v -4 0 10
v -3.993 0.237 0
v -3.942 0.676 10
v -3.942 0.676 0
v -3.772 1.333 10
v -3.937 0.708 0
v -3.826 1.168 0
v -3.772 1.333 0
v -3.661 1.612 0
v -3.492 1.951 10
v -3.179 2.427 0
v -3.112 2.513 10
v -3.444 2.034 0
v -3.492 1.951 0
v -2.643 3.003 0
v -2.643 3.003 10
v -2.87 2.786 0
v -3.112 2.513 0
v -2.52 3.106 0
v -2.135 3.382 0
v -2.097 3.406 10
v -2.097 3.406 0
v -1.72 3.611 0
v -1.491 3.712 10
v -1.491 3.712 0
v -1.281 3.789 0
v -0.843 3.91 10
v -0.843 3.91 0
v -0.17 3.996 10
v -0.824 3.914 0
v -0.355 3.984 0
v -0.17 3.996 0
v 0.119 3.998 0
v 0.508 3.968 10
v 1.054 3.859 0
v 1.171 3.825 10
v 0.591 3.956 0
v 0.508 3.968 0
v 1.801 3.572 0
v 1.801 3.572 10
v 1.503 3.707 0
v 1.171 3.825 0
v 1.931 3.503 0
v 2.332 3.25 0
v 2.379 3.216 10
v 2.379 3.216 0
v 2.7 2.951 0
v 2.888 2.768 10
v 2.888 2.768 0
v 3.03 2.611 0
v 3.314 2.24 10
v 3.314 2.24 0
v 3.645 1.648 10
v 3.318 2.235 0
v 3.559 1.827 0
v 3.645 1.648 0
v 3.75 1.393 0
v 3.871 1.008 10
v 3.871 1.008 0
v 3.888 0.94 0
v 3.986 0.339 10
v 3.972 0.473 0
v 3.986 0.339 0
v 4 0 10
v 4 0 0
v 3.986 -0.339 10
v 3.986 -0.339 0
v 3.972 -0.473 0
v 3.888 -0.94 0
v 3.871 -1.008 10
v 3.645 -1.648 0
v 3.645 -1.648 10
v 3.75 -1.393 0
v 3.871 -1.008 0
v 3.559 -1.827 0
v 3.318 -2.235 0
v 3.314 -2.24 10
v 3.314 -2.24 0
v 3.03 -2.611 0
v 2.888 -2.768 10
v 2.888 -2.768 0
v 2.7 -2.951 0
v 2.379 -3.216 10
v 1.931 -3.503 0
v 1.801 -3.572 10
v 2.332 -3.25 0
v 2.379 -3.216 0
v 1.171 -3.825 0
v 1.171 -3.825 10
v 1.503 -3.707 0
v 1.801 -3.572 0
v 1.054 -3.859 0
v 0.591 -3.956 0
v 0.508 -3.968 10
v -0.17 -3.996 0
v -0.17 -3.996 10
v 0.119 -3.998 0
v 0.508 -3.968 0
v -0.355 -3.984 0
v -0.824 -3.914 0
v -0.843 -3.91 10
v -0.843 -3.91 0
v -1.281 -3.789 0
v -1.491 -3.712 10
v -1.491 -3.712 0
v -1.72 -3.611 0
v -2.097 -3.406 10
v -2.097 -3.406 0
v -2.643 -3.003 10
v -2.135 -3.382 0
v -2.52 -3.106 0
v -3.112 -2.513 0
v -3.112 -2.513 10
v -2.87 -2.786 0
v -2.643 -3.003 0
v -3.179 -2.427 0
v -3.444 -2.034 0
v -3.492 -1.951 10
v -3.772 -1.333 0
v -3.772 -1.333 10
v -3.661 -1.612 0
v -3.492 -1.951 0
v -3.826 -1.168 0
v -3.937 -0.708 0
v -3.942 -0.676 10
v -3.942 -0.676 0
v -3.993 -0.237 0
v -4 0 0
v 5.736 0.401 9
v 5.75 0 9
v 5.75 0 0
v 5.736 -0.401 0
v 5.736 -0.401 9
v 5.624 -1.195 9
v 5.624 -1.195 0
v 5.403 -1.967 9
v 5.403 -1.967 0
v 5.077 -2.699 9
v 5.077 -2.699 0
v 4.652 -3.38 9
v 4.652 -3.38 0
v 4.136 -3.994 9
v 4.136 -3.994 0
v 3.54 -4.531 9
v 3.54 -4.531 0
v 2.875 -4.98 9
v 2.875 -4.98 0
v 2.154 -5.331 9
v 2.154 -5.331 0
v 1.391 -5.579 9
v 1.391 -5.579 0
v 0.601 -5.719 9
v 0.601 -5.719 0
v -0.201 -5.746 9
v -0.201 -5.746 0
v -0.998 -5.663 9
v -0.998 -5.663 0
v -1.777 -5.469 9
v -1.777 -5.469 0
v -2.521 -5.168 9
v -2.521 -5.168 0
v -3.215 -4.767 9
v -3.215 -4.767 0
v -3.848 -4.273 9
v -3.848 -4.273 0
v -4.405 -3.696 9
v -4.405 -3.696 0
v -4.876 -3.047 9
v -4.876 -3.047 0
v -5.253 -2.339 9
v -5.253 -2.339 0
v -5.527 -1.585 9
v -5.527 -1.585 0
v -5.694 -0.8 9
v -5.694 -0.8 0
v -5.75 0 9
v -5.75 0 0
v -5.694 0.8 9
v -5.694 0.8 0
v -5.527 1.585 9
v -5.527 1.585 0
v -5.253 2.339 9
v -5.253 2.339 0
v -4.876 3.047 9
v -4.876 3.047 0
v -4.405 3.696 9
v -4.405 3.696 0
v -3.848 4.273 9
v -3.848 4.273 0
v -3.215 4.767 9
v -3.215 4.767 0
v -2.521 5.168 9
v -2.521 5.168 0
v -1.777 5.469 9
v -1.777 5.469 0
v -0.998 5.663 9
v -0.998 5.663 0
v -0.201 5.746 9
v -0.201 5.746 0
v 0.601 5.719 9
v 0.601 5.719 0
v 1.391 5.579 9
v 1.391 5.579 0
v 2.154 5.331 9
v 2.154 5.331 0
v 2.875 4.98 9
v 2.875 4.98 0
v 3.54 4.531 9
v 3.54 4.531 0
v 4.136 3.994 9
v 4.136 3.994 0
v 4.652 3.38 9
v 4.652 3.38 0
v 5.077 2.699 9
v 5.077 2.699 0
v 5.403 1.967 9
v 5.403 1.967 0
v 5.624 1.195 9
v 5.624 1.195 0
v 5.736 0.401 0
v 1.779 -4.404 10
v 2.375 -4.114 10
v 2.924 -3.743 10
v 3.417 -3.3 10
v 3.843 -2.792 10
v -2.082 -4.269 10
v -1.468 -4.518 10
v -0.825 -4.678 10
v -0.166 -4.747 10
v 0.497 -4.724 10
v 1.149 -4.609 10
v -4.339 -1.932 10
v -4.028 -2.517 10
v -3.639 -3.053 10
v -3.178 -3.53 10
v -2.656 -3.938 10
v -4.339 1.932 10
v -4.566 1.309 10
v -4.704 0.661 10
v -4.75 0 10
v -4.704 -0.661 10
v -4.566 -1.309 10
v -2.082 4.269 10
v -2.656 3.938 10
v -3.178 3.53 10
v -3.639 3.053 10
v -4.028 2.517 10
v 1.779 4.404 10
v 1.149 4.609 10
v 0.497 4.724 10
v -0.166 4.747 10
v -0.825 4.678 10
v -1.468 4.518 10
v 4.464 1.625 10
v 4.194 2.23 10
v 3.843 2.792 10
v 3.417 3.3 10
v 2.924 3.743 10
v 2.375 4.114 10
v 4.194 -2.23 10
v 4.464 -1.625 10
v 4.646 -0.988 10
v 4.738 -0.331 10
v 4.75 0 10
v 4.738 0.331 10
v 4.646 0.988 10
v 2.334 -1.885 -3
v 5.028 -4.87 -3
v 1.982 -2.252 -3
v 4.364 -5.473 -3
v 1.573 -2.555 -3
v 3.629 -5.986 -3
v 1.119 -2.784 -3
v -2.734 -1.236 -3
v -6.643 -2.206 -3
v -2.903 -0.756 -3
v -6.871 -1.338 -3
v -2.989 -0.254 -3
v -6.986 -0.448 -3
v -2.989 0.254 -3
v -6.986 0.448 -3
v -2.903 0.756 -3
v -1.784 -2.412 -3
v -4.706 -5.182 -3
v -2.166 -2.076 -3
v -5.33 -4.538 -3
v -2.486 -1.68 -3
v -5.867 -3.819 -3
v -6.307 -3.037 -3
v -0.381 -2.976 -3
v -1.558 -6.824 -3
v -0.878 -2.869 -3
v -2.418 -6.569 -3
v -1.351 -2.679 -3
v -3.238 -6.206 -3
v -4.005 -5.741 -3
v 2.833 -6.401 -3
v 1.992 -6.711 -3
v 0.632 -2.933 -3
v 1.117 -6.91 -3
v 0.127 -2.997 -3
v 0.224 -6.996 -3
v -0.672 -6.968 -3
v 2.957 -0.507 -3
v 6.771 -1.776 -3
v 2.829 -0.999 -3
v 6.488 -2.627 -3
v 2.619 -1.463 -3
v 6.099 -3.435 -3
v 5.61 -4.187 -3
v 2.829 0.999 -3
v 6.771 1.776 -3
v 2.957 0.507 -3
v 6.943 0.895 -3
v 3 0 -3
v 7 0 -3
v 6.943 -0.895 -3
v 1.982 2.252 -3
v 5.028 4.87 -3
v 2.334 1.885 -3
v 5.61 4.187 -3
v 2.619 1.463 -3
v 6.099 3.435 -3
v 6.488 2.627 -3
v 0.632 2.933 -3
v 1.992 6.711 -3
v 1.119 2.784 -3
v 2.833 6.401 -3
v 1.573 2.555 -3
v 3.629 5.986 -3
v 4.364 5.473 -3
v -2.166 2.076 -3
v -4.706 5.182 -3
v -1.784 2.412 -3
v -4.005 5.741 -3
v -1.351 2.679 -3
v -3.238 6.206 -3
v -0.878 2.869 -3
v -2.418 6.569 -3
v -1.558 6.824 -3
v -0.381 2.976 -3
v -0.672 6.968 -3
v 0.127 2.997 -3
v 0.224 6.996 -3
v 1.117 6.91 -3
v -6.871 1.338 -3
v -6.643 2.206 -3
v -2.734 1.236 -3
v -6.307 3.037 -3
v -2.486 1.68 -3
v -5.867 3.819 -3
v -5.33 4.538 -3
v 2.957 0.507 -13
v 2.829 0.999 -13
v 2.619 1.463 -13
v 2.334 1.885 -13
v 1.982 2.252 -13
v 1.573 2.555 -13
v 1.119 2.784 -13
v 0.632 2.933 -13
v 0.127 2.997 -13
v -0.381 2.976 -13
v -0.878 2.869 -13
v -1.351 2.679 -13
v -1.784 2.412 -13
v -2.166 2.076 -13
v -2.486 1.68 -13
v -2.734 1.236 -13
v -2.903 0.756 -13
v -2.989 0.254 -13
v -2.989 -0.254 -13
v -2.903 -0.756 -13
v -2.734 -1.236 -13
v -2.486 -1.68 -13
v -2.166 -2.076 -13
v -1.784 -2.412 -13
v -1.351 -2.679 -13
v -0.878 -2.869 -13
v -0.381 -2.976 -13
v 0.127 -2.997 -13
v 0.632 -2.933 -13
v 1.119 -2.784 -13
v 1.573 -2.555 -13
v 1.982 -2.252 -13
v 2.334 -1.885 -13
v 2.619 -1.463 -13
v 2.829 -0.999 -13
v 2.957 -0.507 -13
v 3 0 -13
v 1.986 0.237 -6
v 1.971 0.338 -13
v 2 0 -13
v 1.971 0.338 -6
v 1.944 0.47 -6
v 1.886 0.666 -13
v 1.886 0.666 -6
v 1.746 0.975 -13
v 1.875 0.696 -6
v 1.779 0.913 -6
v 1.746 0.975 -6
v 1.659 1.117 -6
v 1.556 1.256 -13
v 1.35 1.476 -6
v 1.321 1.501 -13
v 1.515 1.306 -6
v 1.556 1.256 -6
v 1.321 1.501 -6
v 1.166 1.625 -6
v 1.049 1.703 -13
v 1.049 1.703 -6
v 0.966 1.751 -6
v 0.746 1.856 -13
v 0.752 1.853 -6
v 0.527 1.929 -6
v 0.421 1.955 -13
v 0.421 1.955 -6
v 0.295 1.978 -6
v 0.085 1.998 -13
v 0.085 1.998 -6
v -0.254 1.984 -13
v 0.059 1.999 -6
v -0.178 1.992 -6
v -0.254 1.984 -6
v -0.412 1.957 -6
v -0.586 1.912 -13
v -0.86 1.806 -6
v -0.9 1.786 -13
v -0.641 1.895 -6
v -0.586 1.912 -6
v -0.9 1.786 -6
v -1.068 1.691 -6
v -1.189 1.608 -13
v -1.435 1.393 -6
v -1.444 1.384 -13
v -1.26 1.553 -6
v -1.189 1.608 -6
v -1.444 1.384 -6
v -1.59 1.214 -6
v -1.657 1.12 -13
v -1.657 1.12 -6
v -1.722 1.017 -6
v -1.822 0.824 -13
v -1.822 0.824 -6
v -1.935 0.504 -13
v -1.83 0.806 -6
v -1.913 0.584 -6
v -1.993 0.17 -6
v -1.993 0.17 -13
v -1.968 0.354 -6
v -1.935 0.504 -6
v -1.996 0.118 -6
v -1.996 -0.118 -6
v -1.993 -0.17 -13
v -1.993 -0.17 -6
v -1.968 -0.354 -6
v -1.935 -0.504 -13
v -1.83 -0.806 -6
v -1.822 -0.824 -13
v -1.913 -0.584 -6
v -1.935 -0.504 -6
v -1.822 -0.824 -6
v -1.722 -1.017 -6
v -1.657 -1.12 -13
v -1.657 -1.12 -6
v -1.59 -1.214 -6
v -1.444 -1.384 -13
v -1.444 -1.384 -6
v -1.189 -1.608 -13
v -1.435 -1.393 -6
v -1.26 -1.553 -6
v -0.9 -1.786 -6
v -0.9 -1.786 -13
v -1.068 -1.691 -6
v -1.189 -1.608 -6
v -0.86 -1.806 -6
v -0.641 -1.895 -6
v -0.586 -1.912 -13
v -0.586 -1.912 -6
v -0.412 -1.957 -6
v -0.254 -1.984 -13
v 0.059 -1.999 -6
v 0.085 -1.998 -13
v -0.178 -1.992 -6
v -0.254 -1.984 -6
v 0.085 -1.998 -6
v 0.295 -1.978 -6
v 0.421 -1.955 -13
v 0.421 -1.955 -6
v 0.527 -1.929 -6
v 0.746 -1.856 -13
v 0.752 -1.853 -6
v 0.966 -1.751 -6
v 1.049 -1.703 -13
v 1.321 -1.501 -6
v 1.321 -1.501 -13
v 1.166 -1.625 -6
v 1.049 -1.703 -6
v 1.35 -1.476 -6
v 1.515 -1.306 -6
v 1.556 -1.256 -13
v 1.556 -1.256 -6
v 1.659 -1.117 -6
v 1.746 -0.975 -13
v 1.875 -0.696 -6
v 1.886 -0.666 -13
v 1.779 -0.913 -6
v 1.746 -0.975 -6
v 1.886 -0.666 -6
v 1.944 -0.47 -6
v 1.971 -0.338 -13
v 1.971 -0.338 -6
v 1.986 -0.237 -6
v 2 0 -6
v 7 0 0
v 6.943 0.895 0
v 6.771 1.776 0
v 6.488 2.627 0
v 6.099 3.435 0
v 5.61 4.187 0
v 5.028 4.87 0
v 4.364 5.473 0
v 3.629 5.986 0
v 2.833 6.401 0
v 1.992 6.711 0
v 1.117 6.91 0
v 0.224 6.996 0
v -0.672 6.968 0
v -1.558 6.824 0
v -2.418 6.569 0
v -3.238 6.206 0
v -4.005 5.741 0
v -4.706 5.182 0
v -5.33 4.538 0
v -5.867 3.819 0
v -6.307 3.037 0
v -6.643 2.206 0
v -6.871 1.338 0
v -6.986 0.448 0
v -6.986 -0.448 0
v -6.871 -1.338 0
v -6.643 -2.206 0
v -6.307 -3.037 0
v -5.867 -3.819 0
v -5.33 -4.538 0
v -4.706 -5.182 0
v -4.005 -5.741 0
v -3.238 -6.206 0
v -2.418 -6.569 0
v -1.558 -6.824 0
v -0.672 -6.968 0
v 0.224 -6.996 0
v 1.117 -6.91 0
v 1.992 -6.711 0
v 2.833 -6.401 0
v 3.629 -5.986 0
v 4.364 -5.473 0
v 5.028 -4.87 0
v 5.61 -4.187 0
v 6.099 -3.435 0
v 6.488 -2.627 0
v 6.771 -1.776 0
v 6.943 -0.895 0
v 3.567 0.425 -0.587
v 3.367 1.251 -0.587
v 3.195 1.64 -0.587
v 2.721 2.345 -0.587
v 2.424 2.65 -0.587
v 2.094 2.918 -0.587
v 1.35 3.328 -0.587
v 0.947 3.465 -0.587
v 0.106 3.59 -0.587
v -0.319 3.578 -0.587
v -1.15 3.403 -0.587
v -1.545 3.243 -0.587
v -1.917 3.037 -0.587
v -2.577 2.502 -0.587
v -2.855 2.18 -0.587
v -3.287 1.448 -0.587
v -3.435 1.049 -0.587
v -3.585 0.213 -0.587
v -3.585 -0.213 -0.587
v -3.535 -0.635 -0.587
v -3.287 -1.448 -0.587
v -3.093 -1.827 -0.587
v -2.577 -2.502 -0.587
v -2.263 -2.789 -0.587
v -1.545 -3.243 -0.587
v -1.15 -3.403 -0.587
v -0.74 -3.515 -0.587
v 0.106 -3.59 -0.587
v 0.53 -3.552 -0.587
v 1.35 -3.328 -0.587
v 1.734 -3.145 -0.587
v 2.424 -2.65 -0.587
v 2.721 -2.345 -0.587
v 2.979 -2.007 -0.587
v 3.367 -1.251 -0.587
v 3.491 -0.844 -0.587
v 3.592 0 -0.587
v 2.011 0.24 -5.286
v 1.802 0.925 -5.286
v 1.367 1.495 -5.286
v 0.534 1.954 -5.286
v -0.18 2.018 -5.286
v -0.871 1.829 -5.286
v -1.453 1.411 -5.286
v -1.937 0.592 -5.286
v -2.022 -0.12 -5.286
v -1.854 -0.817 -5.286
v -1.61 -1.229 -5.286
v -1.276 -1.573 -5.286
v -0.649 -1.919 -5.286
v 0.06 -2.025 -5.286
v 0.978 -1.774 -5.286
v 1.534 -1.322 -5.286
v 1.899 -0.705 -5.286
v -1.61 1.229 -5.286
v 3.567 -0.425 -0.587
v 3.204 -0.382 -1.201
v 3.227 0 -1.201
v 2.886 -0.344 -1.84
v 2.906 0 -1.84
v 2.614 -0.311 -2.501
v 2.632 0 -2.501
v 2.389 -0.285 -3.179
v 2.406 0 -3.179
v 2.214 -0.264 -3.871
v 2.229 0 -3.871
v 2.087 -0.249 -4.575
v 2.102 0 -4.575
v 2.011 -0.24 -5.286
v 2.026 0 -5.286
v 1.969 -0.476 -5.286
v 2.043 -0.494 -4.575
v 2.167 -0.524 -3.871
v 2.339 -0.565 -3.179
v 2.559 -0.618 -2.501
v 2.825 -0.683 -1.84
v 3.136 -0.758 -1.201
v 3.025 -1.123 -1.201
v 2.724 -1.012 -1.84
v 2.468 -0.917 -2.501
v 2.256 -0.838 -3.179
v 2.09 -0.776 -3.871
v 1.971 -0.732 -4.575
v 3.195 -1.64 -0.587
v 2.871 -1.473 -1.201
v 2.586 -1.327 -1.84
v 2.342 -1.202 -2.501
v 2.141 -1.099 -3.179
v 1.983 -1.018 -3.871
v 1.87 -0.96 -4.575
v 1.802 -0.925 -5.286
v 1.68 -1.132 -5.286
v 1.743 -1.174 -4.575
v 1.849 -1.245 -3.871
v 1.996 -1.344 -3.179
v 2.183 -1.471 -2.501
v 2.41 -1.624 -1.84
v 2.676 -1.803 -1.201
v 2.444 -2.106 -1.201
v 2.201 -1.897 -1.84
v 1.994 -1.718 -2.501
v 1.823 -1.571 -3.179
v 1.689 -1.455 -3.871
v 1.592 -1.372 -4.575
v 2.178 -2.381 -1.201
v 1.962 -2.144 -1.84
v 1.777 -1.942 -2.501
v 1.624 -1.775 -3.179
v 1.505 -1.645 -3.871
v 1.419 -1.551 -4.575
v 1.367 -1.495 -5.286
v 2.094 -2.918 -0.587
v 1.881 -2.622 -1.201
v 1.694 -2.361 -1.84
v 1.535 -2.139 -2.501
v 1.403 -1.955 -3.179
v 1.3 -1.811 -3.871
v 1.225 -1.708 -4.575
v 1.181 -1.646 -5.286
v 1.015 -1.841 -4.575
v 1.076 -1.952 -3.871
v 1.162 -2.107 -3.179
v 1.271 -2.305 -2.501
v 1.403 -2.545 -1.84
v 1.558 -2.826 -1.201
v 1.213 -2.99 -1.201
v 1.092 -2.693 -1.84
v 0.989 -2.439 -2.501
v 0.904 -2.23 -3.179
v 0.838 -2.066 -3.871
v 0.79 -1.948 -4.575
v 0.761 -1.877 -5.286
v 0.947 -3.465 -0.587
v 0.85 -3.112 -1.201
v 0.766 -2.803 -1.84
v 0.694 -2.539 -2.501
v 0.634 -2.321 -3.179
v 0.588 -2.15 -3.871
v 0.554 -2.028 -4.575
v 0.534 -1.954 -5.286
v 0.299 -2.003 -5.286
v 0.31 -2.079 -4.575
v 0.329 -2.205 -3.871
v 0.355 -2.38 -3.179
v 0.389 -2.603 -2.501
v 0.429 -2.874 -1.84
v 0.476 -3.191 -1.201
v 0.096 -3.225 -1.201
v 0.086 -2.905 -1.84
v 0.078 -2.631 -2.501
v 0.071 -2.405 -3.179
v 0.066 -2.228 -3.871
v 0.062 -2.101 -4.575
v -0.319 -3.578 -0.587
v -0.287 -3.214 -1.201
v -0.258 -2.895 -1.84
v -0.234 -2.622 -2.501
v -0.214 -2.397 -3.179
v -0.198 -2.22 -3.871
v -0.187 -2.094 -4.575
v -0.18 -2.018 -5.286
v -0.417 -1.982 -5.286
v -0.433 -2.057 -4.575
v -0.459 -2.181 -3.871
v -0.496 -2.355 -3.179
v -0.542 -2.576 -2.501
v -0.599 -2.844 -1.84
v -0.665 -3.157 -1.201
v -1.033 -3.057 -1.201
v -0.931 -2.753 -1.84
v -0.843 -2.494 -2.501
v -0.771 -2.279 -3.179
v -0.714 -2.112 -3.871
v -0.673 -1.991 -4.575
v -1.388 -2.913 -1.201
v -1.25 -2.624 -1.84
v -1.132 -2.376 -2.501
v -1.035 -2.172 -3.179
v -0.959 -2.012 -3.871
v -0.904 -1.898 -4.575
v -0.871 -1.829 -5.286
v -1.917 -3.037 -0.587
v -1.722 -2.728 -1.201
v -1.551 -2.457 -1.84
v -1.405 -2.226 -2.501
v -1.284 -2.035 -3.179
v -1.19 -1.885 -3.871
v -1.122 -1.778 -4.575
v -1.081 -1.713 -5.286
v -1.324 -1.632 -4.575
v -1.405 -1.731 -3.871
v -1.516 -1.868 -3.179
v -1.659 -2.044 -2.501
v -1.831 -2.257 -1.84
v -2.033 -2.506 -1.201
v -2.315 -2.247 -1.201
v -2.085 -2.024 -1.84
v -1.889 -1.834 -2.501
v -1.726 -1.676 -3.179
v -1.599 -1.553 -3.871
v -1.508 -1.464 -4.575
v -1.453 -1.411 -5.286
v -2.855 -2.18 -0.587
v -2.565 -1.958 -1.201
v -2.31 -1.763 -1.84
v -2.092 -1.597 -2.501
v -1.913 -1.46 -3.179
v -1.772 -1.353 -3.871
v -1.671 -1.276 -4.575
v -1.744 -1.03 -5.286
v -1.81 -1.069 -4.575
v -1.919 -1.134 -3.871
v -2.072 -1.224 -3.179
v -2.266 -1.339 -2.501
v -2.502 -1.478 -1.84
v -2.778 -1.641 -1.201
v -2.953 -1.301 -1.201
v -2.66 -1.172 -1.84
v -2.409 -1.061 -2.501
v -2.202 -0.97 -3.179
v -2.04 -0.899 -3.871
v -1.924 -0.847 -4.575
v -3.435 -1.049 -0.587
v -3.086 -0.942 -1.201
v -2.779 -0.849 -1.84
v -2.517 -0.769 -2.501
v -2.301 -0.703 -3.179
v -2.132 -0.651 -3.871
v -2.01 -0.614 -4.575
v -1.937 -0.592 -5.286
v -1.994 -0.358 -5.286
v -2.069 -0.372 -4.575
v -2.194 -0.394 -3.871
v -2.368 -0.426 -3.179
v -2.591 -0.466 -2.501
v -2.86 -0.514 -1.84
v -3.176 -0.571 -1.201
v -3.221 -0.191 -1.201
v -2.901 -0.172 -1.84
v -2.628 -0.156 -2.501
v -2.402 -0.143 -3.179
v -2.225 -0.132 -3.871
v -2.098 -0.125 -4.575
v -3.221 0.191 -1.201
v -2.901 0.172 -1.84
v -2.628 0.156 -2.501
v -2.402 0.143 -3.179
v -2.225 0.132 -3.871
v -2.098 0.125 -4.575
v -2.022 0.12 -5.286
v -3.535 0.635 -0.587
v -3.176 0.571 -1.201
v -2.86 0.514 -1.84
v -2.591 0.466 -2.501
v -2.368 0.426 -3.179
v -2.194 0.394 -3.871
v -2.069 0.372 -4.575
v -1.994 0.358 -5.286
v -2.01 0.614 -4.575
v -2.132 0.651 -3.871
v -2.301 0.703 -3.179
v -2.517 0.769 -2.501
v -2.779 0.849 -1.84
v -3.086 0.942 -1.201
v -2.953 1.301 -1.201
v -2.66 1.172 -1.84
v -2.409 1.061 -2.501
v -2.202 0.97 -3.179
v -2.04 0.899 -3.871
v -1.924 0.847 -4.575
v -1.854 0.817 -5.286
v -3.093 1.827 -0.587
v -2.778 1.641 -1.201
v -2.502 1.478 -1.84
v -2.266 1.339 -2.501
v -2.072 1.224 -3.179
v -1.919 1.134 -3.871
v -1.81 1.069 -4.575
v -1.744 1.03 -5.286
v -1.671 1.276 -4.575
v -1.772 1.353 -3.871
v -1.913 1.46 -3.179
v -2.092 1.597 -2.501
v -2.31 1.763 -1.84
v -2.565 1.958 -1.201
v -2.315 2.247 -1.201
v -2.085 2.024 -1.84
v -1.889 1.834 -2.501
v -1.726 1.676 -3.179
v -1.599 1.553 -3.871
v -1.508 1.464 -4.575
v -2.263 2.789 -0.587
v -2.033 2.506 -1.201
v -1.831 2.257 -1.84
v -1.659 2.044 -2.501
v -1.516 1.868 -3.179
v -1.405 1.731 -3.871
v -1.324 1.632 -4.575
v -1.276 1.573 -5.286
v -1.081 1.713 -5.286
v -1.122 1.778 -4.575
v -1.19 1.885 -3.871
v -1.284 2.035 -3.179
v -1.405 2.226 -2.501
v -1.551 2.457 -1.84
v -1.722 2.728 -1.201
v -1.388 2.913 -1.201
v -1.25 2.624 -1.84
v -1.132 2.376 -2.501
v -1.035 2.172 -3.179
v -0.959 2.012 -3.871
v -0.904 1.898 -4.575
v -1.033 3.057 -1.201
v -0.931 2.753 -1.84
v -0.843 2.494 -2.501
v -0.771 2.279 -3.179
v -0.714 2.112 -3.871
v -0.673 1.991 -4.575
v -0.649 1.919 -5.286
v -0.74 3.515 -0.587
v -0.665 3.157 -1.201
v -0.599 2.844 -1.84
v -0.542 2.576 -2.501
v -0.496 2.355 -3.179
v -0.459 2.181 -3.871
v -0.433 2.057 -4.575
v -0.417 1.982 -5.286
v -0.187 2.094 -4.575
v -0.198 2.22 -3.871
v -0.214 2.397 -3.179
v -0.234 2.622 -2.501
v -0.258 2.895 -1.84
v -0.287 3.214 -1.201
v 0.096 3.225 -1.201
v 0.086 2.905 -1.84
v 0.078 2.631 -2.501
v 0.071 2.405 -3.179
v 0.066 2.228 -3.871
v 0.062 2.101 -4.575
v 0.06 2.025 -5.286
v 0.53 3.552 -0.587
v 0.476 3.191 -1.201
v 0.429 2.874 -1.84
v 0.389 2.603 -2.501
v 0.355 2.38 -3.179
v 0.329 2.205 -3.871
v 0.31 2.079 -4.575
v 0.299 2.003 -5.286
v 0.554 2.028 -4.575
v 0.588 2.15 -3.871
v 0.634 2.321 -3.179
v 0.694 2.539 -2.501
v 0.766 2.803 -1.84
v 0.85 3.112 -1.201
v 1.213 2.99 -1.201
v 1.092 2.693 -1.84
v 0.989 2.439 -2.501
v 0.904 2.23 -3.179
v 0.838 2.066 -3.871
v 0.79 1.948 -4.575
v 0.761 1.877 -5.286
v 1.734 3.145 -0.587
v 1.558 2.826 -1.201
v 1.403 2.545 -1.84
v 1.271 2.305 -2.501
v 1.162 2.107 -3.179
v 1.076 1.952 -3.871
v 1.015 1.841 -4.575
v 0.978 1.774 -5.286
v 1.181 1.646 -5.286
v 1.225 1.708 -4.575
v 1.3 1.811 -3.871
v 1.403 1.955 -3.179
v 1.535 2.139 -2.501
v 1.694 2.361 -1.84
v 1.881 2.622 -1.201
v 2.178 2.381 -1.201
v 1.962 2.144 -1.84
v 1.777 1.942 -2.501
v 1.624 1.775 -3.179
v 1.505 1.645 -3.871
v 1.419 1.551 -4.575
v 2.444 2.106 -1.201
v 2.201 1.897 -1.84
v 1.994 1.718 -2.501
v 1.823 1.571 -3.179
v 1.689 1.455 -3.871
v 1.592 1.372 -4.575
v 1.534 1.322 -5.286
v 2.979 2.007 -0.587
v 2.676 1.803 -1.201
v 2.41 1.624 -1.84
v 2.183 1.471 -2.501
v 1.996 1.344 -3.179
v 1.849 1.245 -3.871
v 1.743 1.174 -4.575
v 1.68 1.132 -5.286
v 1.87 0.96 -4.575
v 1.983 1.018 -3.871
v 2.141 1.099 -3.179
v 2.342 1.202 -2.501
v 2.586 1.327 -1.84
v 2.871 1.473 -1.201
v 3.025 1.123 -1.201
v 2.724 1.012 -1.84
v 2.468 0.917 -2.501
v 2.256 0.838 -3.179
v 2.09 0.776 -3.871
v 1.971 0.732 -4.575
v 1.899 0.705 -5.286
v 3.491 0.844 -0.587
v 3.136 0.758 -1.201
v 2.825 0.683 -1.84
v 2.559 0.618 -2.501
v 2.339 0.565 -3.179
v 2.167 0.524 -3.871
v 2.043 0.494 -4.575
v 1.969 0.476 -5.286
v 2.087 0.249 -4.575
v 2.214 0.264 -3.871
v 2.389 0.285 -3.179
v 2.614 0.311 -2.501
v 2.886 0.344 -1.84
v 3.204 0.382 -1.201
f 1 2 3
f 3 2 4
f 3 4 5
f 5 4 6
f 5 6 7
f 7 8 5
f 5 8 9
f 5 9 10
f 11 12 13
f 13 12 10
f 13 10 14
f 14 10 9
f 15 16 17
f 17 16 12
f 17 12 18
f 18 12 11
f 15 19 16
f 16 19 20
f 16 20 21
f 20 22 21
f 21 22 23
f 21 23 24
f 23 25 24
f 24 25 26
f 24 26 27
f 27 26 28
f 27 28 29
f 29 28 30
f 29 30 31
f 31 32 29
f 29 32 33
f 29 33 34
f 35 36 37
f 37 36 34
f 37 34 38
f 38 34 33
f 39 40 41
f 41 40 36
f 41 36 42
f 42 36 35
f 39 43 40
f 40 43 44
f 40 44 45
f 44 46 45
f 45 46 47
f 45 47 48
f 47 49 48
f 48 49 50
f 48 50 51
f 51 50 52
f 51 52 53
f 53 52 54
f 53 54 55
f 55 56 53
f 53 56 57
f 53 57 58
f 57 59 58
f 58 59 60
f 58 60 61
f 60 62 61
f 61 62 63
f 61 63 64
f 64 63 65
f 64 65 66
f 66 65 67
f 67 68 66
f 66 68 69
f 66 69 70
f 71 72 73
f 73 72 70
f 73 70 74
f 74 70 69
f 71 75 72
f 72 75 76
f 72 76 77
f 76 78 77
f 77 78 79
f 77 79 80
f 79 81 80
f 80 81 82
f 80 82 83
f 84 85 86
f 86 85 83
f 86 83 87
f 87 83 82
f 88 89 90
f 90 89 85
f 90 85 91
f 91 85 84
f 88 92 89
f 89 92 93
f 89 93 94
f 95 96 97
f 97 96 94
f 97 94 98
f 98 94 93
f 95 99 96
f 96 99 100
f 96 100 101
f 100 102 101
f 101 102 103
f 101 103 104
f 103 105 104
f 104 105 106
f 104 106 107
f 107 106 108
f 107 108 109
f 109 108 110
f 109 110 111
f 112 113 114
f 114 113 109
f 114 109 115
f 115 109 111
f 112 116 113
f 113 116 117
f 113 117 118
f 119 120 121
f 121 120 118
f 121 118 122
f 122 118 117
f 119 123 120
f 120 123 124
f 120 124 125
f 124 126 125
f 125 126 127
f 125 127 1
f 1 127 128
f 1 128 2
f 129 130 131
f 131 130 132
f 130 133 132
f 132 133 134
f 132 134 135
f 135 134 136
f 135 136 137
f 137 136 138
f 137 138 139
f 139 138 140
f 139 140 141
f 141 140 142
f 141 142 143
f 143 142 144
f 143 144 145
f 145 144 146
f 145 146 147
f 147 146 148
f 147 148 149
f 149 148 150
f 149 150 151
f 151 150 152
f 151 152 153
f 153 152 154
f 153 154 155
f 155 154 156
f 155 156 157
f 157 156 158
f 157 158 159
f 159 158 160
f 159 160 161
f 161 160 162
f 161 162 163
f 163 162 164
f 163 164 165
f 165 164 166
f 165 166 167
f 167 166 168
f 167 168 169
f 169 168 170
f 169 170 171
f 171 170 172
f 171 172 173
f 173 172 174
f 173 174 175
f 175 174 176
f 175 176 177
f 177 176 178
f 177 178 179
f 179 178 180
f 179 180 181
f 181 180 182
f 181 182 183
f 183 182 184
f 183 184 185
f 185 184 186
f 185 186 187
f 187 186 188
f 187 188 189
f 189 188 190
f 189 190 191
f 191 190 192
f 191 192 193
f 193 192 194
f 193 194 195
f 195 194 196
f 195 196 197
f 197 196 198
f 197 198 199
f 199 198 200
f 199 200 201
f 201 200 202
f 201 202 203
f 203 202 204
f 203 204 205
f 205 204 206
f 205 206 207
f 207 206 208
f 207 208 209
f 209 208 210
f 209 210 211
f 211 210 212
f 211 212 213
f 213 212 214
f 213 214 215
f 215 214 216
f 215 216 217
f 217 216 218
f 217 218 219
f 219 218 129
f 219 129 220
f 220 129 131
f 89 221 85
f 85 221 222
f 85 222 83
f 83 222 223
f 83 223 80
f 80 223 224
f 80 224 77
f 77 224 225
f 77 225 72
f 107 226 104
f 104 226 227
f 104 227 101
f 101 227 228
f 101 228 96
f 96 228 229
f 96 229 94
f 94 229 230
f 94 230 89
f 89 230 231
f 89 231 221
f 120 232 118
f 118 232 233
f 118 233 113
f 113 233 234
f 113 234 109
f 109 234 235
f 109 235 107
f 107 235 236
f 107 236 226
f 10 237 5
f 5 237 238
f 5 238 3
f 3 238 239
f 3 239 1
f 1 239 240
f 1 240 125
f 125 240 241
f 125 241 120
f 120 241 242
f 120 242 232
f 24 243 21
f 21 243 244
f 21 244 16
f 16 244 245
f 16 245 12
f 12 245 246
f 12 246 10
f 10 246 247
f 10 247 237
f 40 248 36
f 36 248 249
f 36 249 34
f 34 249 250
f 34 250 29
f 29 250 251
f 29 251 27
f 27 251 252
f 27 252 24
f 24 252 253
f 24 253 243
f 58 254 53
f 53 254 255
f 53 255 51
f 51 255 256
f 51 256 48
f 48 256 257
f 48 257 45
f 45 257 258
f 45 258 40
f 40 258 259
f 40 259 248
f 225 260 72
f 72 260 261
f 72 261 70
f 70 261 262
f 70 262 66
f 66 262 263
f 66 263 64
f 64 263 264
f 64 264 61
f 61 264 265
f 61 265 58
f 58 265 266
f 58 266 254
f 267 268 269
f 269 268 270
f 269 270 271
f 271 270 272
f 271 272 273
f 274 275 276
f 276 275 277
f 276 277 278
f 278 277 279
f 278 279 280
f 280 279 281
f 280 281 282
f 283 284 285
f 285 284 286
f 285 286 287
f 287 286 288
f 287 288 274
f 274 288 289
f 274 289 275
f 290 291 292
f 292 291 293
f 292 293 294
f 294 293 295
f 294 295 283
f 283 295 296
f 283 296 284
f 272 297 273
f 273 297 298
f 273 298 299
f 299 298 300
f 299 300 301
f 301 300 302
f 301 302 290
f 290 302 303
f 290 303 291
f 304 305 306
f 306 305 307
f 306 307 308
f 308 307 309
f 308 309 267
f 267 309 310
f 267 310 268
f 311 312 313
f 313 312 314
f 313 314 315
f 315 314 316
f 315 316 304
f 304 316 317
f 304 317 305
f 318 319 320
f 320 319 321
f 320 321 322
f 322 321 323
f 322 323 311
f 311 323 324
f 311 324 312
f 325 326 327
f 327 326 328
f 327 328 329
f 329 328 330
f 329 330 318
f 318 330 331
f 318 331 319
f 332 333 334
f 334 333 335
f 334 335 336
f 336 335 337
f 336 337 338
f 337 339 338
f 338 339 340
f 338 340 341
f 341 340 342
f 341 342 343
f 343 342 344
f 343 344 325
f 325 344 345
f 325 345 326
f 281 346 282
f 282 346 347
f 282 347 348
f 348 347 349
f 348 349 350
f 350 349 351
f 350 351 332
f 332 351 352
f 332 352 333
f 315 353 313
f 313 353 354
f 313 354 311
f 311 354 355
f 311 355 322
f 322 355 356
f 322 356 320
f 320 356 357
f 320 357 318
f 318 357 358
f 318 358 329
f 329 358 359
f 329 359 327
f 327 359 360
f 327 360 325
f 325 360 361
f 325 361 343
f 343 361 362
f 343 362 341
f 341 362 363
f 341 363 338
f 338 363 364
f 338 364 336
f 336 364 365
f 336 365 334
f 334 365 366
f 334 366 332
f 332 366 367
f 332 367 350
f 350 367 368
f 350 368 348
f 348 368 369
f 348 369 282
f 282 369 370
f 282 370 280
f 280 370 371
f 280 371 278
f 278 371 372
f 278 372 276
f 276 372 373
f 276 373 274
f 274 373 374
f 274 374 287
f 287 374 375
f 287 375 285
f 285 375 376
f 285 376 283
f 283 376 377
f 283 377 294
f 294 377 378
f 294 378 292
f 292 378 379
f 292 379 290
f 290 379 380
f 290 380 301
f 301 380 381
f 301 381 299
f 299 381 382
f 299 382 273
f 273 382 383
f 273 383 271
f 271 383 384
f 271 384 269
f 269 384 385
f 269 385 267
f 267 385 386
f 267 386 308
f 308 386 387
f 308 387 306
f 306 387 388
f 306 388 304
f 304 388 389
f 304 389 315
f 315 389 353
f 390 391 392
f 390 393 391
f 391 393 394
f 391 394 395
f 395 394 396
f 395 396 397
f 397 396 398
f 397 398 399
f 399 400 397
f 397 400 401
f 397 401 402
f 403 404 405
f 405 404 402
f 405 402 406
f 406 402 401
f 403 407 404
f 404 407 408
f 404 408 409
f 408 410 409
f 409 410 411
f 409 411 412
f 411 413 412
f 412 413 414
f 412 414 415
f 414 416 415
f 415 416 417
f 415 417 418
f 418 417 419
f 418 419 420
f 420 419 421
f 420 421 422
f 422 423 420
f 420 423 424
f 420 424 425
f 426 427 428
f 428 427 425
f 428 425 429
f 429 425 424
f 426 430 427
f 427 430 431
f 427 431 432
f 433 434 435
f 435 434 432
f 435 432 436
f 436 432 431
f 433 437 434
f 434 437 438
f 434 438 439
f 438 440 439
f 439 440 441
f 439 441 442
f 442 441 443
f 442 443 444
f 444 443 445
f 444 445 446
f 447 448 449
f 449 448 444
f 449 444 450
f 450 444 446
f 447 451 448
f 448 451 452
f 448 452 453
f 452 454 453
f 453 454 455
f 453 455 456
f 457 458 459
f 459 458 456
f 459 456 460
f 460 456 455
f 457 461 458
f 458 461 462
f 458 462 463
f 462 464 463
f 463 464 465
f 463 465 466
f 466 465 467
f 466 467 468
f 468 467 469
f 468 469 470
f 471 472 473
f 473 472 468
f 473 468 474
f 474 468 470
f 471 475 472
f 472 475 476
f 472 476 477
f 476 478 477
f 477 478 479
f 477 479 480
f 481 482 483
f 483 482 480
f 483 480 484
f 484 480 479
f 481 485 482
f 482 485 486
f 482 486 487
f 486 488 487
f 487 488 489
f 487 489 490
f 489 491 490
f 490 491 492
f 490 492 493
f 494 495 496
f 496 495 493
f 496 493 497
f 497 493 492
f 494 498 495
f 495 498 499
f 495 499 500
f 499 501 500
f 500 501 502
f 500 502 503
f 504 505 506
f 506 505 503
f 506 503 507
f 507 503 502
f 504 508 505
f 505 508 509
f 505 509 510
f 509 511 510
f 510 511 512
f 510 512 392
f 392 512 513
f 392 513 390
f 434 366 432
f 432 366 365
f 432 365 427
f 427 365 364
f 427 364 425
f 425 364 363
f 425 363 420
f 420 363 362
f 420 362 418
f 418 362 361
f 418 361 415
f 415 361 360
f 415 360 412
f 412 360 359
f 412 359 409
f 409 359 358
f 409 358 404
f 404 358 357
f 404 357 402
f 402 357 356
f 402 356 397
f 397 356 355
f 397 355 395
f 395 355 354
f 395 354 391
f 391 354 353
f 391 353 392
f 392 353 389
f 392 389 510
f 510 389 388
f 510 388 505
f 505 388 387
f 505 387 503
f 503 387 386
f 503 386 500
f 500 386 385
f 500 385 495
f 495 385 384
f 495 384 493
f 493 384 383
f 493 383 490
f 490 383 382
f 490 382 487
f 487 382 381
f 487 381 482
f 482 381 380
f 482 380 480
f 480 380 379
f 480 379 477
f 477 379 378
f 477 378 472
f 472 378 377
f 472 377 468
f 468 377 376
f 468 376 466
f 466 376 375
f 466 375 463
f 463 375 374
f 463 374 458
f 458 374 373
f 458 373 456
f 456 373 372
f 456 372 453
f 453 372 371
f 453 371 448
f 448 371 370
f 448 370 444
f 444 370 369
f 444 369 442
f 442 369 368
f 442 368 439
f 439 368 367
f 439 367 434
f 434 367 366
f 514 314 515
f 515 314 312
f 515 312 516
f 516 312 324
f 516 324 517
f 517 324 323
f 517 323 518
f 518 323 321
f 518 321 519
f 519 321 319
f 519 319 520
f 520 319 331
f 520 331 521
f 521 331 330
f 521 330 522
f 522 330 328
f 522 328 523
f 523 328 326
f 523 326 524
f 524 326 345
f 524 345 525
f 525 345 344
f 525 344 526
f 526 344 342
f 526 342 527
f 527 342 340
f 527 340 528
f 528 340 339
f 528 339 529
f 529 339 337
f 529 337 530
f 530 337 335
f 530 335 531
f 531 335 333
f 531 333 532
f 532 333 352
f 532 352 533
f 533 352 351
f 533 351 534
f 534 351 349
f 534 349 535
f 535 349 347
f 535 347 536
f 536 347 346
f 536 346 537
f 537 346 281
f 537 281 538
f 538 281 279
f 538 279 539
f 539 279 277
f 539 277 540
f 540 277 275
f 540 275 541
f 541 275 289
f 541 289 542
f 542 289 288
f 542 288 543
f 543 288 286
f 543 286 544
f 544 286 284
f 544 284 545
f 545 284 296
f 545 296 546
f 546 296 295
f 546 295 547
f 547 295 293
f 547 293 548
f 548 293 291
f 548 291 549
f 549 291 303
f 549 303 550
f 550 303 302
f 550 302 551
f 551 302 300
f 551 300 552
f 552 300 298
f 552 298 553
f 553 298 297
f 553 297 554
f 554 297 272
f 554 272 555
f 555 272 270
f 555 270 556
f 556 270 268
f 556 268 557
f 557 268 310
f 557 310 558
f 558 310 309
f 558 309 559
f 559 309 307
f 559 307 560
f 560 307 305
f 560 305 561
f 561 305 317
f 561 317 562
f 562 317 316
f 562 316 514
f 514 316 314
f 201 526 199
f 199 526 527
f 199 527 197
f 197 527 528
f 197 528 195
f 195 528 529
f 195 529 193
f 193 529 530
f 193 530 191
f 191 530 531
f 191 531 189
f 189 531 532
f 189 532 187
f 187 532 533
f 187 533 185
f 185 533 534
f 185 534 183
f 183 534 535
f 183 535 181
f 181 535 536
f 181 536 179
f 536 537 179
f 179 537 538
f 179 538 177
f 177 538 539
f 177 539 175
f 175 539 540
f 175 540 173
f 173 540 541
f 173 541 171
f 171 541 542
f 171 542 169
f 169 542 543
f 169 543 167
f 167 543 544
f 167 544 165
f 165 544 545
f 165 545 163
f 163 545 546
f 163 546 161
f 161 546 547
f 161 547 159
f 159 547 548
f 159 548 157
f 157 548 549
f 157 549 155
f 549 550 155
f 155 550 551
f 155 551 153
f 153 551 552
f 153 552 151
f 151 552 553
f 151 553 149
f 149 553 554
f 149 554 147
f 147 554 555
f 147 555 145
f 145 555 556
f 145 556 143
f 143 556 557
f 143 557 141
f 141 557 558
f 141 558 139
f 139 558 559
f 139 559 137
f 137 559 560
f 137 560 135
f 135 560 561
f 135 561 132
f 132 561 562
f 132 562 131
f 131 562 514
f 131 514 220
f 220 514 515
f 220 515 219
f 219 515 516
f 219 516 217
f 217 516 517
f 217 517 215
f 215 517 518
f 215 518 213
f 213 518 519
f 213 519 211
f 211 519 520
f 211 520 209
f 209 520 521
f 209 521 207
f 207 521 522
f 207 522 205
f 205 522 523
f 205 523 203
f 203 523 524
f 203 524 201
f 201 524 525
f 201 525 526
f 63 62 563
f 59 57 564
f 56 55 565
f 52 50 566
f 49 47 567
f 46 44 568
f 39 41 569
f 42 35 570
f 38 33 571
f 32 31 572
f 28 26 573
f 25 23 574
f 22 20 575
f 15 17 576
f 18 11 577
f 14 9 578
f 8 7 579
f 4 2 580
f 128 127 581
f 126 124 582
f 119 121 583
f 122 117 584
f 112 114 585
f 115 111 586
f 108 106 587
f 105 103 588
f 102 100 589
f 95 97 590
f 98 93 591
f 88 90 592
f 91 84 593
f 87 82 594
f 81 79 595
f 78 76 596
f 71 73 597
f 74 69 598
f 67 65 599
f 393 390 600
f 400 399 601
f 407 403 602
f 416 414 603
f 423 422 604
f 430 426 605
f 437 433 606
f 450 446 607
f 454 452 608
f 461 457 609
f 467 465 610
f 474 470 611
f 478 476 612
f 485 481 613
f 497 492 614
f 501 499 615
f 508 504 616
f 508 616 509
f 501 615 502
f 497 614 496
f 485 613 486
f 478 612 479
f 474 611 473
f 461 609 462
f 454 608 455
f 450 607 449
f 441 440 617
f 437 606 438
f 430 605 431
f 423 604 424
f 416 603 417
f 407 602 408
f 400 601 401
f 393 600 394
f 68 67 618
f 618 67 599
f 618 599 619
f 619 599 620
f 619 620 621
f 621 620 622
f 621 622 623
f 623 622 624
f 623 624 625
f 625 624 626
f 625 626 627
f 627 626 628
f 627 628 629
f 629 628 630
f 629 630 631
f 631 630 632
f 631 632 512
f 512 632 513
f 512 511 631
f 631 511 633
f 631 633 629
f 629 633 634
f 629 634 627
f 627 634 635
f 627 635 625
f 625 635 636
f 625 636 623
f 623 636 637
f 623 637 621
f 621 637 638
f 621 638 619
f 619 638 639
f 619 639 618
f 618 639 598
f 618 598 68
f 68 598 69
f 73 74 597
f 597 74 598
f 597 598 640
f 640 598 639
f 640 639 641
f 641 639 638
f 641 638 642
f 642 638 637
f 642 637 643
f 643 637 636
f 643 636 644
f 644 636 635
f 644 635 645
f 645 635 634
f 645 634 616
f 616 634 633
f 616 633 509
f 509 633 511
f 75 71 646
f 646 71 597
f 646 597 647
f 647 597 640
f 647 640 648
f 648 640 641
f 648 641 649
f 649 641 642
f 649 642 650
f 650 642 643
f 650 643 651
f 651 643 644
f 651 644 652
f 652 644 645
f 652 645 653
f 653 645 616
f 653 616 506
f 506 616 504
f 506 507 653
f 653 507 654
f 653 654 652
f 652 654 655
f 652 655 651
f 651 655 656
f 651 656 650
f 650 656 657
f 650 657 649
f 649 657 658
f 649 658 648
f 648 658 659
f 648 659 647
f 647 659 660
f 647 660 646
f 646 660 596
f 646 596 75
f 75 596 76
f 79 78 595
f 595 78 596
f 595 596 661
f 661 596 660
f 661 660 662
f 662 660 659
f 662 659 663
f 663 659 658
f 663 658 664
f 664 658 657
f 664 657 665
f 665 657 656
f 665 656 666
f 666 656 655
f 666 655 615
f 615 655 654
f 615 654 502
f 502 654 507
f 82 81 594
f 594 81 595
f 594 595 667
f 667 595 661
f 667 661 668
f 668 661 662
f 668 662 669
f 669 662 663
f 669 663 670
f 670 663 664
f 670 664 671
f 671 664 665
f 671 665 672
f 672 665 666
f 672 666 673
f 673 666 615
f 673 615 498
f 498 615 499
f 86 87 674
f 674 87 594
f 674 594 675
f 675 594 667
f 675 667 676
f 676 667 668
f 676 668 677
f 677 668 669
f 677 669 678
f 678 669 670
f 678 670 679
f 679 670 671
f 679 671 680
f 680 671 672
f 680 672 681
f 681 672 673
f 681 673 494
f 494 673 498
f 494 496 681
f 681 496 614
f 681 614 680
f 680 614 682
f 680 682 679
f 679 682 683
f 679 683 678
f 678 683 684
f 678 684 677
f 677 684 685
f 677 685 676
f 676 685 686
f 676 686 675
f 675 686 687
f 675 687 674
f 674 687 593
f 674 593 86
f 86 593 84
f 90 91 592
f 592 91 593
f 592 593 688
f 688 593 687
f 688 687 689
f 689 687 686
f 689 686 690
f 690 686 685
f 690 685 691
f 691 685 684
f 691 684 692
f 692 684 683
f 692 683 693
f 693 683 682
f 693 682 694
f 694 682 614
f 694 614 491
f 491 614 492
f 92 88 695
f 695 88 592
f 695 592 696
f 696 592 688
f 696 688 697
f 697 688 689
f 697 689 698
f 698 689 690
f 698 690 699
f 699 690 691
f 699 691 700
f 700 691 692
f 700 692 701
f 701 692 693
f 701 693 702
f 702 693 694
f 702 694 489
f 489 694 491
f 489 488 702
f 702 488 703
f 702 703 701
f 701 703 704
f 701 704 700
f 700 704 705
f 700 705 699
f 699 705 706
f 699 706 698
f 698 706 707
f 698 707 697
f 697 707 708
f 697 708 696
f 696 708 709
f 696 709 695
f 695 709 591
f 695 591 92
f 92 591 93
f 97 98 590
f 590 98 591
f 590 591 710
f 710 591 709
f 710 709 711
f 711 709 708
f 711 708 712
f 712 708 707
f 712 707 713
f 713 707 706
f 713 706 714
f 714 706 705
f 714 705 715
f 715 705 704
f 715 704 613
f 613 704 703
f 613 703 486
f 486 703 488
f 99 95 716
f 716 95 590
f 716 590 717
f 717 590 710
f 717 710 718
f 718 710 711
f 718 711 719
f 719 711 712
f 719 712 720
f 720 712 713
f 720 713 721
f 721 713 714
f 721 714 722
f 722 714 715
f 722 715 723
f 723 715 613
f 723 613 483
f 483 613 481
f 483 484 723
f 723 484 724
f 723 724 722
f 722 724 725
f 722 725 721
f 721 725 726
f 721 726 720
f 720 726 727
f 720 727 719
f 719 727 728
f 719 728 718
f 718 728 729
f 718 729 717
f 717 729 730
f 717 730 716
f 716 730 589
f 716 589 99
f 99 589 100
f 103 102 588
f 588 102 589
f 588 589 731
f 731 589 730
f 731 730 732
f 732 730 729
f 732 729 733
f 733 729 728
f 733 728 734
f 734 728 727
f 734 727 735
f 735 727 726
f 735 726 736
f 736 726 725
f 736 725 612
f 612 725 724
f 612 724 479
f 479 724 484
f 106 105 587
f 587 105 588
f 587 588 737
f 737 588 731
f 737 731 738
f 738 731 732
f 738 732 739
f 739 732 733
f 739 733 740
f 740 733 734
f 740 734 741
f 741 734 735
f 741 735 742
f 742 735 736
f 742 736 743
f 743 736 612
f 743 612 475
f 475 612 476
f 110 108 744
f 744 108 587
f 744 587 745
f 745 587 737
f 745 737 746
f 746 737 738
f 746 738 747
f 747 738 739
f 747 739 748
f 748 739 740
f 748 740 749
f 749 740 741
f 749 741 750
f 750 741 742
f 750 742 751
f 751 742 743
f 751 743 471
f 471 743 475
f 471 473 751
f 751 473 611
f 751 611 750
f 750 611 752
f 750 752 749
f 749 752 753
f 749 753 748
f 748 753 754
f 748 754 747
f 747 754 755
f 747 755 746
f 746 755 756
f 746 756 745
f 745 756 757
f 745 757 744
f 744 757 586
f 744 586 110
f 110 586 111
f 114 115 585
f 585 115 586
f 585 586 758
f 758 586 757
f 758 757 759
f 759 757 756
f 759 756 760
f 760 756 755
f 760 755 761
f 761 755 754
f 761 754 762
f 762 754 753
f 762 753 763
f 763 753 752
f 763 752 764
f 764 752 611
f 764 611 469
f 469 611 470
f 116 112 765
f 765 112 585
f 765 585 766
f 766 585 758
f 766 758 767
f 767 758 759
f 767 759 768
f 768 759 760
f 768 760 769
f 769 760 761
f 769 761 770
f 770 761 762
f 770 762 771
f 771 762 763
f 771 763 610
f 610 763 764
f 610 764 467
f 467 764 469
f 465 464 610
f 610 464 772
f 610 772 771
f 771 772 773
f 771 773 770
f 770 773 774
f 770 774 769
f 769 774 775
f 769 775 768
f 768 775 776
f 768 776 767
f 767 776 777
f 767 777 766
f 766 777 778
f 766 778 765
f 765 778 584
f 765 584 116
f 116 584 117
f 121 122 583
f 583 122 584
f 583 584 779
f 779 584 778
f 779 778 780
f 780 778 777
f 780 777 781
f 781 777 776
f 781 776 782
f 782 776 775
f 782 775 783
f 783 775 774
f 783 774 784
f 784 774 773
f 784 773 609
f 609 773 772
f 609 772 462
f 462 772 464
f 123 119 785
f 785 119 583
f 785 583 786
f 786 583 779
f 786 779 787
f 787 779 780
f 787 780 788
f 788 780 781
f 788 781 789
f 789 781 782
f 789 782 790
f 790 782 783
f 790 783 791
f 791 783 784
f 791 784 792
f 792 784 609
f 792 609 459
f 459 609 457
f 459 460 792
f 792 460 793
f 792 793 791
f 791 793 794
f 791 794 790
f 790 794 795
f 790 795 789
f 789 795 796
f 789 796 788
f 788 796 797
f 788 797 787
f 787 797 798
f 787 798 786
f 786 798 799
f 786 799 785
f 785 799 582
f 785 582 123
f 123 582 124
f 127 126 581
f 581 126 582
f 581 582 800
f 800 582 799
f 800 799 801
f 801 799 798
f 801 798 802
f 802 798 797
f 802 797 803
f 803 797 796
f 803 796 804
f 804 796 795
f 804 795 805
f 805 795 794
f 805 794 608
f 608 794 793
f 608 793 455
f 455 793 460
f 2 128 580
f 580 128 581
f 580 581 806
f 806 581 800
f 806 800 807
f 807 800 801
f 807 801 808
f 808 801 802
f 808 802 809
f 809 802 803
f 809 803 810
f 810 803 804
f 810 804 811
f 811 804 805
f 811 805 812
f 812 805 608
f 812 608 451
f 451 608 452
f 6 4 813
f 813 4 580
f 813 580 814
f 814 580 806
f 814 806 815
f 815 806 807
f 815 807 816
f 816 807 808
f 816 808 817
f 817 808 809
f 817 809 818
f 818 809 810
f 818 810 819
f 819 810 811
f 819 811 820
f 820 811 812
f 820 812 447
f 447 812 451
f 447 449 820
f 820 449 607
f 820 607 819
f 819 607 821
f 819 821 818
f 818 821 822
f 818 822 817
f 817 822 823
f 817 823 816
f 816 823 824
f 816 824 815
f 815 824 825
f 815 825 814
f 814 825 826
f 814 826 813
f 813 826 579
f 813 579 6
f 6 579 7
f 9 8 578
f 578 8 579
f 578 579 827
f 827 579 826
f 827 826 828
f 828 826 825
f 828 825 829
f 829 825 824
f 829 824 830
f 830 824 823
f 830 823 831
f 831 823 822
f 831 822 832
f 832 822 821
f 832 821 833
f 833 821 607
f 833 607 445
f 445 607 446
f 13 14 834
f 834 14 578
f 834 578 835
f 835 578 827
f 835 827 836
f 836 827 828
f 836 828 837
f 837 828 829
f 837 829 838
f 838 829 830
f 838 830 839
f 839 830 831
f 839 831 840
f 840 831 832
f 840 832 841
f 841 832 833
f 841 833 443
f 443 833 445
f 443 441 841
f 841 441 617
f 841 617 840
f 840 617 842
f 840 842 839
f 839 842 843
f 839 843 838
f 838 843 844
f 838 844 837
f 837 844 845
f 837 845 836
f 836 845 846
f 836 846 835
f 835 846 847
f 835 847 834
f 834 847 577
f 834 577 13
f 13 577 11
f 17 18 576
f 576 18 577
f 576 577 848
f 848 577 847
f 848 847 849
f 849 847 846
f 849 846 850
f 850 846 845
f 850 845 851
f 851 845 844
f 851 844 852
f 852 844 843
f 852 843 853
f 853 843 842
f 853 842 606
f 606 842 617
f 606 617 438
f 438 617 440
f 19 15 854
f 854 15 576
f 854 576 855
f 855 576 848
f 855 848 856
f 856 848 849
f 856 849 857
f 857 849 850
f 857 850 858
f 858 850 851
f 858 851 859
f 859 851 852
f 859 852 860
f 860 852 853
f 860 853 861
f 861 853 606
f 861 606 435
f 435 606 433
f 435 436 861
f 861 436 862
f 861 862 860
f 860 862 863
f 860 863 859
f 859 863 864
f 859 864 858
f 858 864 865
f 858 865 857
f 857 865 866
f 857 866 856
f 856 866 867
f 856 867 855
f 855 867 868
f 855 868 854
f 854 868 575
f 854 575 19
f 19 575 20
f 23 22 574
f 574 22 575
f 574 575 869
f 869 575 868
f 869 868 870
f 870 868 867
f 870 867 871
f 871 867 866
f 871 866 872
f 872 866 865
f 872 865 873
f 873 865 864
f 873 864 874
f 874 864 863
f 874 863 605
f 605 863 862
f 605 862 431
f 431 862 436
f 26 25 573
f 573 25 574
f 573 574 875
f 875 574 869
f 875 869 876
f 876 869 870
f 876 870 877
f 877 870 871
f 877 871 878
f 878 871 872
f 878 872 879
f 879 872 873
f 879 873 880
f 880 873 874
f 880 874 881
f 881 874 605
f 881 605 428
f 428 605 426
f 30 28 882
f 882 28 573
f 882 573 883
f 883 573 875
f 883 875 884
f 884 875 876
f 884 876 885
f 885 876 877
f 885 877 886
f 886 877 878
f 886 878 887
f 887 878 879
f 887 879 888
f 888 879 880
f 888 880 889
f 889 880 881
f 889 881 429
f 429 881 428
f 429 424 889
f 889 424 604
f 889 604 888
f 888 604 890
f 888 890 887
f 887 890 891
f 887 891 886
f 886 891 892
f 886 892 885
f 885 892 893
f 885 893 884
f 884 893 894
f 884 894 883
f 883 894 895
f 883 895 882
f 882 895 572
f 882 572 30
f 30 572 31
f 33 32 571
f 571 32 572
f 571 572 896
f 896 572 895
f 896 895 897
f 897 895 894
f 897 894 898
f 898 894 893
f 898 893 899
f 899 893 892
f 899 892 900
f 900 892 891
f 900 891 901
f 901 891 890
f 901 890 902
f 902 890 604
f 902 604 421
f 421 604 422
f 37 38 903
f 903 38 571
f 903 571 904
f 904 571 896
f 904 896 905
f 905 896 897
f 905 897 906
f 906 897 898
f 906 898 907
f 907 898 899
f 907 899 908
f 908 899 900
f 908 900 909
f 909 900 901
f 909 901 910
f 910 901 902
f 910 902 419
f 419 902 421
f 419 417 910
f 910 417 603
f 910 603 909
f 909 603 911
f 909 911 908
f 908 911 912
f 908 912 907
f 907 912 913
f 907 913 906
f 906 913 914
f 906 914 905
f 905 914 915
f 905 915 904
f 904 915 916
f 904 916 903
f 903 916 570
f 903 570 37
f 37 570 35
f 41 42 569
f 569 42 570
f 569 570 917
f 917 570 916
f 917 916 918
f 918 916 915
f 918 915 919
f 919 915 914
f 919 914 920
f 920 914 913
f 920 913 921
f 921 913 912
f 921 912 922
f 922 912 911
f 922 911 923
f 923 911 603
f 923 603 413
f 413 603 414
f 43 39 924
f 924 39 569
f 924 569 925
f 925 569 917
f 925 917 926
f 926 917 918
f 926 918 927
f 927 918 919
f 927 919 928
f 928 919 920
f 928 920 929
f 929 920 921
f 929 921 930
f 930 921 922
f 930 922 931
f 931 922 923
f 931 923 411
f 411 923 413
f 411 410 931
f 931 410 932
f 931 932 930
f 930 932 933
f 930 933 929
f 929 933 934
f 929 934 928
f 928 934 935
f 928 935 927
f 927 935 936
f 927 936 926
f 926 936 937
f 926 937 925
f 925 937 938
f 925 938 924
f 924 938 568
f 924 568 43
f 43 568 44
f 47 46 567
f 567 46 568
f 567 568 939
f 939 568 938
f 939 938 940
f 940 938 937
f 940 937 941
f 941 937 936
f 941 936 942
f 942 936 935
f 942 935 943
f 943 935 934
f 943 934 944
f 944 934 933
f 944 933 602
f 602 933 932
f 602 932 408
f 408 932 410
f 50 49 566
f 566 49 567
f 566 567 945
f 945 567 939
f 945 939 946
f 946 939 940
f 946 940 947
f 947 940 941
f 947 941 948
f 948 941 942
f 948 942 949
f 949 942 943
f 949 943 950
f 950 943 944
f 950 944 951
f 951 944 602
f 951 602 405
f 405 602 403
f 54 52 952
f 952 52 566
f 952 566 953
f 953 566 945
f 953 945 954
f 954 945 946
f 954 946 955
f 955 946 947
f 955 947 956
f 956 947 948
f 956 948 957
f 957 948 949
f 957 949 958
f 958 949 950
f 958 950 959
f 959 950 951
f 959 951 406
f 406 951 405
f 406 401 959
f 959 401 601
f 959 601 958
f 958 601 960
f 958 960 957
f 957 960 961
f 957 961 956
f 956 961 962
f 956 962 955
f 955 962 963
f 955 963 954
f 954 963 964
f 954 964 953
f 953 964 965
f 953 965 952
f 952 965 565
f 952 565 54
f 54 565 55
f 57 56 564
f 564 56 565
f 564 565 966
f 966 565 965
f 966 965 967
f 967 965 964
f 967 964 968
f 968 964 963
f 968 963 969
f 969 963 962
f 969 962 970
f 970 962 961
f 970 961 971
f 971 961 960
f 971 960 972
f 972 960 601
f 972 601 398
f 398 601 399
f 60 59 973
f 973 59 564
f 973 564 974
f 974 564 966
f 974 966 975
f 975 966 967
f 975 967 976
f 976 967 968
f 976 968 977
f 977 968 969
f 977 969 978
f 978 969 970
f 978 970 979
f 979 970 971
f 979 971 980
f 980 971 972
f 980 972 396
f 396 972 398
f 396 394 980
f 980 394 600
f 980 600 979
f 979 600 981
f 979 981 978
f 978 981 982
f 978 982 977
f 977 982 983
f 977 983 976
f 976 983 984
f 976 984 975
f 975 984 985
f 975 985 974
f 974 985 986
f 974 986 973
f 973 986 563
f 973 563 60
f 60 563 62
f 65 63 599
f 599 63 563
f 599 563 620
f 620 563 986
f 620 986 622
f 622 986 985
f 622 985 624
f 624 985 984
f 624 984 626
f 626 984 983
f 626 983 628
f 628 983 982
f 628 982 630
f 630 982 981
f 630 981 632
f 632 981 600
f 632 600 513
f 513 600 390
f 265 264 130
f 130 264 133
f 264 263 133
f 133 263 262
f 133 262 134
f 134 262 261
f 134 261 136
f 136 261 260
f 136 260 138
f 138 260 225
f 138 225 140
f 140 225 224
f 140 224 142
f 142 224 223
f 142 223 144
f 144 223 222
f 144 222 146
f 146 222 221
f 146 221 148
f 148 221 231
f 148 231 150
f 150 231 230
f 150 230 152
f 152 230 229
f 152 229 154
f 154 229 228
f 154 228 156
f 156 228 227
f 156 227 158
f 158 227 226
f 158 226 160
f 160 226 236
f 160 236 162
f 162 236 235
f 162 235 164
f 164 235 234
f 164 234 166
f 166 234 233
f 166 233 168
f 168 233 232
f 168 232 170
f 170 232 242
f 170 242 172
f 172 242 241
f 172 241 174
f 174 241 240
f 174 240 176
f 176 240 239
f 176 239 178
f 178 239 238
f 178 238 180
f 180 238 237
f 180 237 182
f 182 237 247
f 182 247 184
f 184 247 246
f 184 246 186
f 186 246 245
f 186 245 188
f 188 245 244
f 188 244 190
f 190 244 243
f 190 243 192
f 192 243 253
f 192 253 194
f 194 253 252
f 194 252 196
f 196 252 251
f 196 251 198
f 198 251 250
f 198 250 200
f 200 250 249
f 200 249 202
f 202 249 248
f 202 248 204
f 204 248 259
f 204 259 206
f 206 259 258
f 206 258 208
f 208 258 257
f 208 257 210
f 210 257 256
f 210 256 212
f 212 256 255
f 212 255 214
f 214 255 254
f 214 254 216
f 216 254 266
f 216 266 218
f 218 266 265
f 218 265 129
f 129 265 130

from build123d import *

# Parameters (mm, degrees)
SKETCH1_R           = 5.75
SKETCH1_R_2         = 4
BOSS_EXTRUDE1_DEPTH = 10
BOSS_EXTRUDE2_START = -3
SKETCH1_3_R         = 5.75
SKETCH1_3_R_2       = 3
SKETCH1_3_R_3       = 4
BOSS_EXTRUDE2_DEPTH = 3
BOSS_EXTRUDE3_START = -13
SKETCH1_4_R         = 3
SKETCH1_4_R_2       = 2
BOSS_EXTRUDE3_DEPTH = 13
BOSS_EXTRUDE4_START = -3
SKETCH1_5_R         = 7
SKETCH1_5_R_2       = 5.75
BOSS_EXTRUDE4_DEPTH = 3
FILLET1_R           = 10
CHAMFER1_SIZE       = 1


with BuildPart() as part:
    # Sketch1 → Boss-Extrude1 (new body)
    with BuildSketch(Plane.XY):
        Circle(SKETCH1_R)
        Circle(SKETCH1_R_2, mode=Mode.SUBTRACT)
    extrude(amount=BOSS_EXTRUDE1_DEPTH)

    # Sketch1<3> → Boss-Extrude2 (add)
    # profile 1 of 2: a face of its own
    with BuildSketch(Plane.XY.offset(BOSS_EXTRUDE2_START)):
        Circle(SKETCH1_3_R)
        Circle(SKETCH1_3_R_2, mode=Mode.SUBTRACT)
    # profile 2 of 2: a face of its own
    with BuildSketch(Plane.XY.offset(BOSS_EXTRUDE2_START)):
        Circle(SKETCH1_3_R_3)
        Circle(SKETCH1_3_R_2, mode=Mode.SUBTRACT)
    extrude(amount=BOSS_EXTRUDE2_DEPTH)

    # Sketch1<4> → Boss-Extrude3 (add)
    with BuildSketch(Plane.XY.offset(BOSS_EXTRUDE3_START)):
        Circle(SKETCH1_4_R)
        Circle(SKETCH1_4_R_2, mode=Mode.SUBTRACT)
    extrude(amount=BOSS_EXTRUDE3_DEPTH)

    # Sketch1<5> → Boss-Extrude4 (add)
    with BuildSketch(Plane.XY.offset(BOSS_EXTRUDE4_START)):
        Circle(SKETCH1_5_R)
        Circle(SKETCH1_5_R_2, mode=Mode.SUBTRACT)
    extrude(amount=BOSS_EXTRUDE4_DEPTH)

    # Fillet1
    # the kernel refuses this fillet: 10 mm, written as the material it takes off along each edge
    with BuildSketch(Plane(origin=(0, 0, 0), x_dir=(1, 0, 0), z_dir=(0, -1, 0))) as fillet1_piece_1:
        with BuildLine():
            CenterArc((12, -6), FILLET1_R, 143.130102354, 36.869897646)
            Line((2, -6), (1.8, -6))
            Line((1.8, -6), (1.8, 0))
            Line((1.8, 0), (2, 0.2))
            ThreePointArc((2, 0.2), (3, 0.2), (3.84, 0.12))
            Line((3.84, 0.12), (4, 0))
        make_face()
    revolve(axis=Axis((0, 0, 0), (0, 0, 1)), mode=Mode.SUBTRACT)

    # Chamfer1
    chamfer1_edges = [part.edges().sort_by_distance(p)[0] for p in [
        (-5.75, 0, 10),
    ]]
    chamfer(chamfer1_edges, length=CHAMFER1_SIZE)


solid = part.part
